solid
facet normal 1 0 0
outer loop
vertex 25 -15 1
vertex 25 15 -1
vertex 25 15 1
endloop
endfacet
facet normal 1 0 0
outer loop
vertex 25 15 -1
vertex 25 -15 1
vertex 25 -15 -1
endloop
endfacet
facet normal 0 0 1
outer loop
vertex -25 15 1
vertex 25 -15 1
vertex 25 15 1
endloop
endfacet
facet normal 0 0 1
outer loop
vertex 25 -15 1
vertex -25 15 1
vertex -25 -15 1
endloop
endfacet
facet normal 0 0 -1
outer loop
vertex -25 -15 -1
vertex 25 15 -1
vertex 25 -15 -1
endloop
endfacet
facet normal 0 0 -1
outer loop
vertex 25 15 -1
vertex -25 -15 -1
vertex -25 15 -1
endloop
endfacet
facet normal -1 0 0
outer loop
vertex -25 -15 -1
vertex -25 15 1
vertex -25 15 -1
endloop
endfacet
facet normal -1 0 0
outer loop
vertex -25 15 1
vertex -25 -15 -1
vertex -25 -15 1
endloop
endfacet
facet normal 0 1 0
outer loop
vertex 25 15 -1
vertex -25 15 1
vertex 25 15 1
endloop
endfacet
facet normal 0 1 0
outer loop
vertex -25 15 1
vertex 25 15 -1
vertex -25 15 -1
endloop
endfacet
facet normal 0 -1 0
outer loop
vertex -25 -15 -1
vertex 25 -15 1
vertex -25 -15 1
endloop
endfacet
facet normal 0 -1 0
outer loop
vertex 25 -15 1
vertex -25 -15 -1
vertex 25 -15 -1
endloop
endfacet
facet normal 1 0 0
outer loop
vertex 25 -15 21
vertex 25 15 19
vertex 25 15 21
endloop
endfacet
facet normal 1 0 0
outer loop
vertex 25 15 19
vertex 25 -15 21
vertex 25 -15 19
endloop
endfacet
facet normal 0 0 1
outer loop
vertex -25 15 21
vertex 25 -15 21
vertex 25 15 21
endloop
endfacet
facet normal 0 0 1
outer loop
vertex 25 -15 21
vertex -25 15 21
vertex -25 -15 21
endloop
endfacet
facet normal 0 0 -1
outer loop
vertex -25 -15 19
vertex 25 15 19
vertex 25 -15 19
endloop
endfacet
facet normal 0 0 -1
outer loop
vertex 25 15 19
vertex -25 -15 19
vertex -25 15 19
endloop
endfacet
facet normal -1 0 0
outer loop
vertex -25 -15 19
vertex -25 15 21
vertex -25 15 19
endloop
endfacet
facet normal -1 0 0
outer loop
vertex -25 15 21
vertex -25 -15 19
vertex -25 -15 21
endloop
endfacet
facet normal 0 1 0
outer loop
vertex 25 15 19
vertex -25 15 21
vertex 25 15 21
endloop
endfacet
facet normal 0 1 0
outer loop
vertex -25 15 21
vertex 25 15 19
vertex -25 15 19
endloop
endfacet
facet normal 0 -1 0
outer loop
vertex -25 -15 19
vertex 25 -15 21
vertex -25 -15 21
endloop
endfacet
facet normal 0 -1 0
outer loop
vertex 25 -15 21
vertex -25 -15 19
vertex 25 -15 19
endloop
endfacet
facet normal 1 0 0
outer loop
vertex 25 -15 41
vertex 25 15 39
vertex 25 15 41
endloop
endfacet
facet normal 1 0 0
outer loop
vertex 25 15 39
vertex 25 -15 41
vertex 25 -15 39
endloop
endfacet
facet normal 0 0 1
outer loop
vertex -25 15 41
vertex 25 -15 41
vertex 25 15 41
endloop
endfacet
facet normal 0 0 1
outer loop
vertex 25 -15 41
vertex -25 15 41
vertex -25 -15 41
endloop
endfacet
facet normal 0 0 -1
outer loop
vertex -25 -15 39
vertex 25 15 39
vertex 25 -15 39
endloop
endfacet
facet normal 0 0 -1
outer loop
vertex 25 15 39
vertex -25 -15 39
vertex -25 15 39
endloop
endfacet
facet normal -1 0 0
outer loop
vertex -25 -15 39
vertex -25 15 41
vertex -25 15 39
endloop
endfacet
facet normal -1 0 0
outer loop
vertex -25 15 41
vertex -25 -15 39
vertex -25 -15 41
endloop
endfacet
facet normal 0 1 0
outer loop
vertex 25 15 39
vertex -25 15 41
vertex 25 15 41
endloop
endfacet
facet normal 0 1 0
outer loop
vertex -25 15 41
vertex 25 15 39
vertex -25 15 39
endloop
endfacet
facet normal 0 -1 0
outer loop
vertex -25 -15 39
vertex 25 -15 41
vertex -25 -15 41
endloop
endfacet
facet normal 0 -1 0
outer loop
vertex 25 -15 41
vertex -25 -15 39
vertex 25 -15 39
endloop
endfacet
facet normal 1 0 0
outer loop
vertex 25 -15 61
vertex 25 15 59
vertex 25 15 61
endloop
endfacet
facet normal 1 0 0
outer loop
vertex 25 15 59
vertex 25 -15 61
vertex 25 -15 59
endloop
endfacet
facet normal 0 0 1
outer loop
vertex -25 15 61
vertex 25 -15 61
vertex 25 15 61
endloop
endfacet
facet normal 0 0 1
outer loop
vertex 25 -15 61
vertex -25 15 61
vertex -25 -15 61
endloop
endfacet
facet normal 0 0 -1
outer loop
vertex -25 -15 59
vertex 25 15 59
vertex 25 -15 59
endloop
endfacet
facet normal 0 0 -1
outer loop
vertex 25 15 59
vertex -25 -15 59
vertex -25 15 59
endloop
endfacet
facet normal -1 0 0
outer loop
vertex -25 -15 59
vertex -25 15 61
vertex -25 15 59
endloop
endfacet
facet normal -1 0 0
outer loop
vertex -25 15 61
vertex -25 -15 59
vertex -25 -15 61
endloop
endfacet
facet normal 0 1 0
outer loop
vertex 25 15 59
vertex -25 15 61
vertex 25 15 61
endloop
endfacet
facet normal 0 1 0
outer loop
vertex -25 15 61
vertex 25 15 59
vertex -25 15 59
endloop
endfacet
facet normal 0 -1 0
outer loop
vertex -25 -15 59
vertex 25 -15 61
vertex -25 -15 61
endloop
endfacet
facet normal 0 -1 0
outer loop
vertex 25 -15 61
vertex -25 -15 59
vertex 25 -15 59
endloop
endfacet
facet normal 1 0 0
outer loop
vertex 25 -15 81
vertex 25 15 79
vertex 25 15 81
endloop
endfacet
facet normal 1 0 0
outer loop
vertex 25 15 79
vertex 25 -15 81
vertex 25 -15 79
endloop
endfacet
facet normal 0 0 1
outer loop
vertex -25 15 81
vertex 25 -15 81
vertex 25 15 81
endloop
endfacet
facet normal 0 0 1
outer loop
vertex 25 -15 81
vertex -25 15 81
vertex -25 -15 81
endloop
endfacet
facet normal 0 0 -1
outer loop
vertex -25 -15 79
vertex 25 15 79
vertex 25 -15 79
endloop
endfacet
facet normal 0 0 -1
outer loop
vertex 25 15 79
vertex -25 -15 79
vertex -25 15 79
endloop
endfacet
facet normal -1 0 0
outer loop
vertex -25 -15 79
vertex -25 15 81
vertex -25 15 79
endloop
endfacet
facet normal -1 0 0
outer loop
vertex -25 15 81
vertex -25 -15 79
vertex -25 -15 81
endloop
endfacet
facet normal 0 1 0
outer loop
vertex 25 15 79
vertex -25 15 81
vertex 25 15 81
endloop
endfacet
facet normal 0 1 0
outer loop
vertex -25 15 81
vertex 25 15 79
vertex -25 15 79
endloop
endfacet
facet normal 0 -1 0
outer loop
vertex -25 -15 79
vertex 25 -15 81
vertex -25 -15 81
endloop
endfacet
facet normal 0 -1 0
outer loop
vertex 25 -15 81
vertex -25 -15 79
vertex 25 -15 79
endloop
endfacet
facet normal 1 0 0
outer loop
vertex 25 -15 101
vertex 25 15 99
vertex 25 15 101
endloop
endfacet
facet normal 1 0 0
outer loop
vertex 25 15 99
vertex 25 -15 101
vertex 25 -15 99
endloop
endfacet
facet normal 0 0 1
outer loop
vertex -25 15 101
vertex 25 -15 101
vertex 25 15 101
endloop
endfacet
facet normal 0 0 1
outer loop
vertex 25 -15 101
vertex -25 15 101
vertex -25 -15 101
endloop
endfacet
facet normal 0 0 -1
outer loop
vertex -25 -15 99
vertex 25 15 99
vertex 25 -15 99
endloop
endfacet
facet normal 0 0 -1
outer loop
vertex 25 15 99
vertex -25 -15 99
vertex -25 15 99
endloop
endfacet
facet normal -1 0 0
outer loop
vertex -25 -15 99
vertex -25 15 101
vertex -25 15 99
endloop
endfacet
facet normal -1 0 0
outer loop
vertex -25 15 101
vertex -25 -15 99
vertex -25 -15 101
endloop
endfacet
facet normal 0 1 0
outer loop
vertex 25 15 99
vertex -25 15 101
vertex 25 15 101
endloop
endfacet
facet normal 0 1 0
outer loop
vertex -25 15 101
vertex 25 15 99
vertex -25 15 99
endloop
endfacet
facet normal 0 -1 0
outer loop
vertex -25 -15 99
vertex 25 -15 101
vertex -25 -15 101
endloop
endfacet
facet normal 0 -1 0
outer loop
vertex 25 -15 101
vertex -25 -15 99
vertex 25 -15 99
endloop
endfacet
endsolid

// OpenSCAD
// Parameters for the rectangular plate
plate_length = 50;  // Length of the plate
plate_width = 30;   // Width of the plate
plate_thickness = 2; // Thickness of the plate
layer_spacing = 20;  // Spacing between layers (adjusted to separate plates)

// Function to create a rectangular plate
module rectangular_plate() {
    cube([plate_length, plate_width, plate_thickness], center = true);
}

// Generate the individual rectangular plates with spacing
translate([0, 0, layer_spacing * 0]) rectangular_plate(); // Plate 1 (bottommost)
translate([0, 0, layer_spacing * 1]) rectangular_plate(); // Plate 2
translate([0, 0, layer_spacing * 2]) rectangular_plate(); // Plate 3
translate([0, 0, layer_spacing * 3]) rectangular_plate(); // Plate 4
translate([0, 0, layer_spacing * 4]) rectangular_plate(); // Plate 5
translate([0, 0, layer_spacing * 5]) rectangular_plate(); // Plate 6 (topmost)
